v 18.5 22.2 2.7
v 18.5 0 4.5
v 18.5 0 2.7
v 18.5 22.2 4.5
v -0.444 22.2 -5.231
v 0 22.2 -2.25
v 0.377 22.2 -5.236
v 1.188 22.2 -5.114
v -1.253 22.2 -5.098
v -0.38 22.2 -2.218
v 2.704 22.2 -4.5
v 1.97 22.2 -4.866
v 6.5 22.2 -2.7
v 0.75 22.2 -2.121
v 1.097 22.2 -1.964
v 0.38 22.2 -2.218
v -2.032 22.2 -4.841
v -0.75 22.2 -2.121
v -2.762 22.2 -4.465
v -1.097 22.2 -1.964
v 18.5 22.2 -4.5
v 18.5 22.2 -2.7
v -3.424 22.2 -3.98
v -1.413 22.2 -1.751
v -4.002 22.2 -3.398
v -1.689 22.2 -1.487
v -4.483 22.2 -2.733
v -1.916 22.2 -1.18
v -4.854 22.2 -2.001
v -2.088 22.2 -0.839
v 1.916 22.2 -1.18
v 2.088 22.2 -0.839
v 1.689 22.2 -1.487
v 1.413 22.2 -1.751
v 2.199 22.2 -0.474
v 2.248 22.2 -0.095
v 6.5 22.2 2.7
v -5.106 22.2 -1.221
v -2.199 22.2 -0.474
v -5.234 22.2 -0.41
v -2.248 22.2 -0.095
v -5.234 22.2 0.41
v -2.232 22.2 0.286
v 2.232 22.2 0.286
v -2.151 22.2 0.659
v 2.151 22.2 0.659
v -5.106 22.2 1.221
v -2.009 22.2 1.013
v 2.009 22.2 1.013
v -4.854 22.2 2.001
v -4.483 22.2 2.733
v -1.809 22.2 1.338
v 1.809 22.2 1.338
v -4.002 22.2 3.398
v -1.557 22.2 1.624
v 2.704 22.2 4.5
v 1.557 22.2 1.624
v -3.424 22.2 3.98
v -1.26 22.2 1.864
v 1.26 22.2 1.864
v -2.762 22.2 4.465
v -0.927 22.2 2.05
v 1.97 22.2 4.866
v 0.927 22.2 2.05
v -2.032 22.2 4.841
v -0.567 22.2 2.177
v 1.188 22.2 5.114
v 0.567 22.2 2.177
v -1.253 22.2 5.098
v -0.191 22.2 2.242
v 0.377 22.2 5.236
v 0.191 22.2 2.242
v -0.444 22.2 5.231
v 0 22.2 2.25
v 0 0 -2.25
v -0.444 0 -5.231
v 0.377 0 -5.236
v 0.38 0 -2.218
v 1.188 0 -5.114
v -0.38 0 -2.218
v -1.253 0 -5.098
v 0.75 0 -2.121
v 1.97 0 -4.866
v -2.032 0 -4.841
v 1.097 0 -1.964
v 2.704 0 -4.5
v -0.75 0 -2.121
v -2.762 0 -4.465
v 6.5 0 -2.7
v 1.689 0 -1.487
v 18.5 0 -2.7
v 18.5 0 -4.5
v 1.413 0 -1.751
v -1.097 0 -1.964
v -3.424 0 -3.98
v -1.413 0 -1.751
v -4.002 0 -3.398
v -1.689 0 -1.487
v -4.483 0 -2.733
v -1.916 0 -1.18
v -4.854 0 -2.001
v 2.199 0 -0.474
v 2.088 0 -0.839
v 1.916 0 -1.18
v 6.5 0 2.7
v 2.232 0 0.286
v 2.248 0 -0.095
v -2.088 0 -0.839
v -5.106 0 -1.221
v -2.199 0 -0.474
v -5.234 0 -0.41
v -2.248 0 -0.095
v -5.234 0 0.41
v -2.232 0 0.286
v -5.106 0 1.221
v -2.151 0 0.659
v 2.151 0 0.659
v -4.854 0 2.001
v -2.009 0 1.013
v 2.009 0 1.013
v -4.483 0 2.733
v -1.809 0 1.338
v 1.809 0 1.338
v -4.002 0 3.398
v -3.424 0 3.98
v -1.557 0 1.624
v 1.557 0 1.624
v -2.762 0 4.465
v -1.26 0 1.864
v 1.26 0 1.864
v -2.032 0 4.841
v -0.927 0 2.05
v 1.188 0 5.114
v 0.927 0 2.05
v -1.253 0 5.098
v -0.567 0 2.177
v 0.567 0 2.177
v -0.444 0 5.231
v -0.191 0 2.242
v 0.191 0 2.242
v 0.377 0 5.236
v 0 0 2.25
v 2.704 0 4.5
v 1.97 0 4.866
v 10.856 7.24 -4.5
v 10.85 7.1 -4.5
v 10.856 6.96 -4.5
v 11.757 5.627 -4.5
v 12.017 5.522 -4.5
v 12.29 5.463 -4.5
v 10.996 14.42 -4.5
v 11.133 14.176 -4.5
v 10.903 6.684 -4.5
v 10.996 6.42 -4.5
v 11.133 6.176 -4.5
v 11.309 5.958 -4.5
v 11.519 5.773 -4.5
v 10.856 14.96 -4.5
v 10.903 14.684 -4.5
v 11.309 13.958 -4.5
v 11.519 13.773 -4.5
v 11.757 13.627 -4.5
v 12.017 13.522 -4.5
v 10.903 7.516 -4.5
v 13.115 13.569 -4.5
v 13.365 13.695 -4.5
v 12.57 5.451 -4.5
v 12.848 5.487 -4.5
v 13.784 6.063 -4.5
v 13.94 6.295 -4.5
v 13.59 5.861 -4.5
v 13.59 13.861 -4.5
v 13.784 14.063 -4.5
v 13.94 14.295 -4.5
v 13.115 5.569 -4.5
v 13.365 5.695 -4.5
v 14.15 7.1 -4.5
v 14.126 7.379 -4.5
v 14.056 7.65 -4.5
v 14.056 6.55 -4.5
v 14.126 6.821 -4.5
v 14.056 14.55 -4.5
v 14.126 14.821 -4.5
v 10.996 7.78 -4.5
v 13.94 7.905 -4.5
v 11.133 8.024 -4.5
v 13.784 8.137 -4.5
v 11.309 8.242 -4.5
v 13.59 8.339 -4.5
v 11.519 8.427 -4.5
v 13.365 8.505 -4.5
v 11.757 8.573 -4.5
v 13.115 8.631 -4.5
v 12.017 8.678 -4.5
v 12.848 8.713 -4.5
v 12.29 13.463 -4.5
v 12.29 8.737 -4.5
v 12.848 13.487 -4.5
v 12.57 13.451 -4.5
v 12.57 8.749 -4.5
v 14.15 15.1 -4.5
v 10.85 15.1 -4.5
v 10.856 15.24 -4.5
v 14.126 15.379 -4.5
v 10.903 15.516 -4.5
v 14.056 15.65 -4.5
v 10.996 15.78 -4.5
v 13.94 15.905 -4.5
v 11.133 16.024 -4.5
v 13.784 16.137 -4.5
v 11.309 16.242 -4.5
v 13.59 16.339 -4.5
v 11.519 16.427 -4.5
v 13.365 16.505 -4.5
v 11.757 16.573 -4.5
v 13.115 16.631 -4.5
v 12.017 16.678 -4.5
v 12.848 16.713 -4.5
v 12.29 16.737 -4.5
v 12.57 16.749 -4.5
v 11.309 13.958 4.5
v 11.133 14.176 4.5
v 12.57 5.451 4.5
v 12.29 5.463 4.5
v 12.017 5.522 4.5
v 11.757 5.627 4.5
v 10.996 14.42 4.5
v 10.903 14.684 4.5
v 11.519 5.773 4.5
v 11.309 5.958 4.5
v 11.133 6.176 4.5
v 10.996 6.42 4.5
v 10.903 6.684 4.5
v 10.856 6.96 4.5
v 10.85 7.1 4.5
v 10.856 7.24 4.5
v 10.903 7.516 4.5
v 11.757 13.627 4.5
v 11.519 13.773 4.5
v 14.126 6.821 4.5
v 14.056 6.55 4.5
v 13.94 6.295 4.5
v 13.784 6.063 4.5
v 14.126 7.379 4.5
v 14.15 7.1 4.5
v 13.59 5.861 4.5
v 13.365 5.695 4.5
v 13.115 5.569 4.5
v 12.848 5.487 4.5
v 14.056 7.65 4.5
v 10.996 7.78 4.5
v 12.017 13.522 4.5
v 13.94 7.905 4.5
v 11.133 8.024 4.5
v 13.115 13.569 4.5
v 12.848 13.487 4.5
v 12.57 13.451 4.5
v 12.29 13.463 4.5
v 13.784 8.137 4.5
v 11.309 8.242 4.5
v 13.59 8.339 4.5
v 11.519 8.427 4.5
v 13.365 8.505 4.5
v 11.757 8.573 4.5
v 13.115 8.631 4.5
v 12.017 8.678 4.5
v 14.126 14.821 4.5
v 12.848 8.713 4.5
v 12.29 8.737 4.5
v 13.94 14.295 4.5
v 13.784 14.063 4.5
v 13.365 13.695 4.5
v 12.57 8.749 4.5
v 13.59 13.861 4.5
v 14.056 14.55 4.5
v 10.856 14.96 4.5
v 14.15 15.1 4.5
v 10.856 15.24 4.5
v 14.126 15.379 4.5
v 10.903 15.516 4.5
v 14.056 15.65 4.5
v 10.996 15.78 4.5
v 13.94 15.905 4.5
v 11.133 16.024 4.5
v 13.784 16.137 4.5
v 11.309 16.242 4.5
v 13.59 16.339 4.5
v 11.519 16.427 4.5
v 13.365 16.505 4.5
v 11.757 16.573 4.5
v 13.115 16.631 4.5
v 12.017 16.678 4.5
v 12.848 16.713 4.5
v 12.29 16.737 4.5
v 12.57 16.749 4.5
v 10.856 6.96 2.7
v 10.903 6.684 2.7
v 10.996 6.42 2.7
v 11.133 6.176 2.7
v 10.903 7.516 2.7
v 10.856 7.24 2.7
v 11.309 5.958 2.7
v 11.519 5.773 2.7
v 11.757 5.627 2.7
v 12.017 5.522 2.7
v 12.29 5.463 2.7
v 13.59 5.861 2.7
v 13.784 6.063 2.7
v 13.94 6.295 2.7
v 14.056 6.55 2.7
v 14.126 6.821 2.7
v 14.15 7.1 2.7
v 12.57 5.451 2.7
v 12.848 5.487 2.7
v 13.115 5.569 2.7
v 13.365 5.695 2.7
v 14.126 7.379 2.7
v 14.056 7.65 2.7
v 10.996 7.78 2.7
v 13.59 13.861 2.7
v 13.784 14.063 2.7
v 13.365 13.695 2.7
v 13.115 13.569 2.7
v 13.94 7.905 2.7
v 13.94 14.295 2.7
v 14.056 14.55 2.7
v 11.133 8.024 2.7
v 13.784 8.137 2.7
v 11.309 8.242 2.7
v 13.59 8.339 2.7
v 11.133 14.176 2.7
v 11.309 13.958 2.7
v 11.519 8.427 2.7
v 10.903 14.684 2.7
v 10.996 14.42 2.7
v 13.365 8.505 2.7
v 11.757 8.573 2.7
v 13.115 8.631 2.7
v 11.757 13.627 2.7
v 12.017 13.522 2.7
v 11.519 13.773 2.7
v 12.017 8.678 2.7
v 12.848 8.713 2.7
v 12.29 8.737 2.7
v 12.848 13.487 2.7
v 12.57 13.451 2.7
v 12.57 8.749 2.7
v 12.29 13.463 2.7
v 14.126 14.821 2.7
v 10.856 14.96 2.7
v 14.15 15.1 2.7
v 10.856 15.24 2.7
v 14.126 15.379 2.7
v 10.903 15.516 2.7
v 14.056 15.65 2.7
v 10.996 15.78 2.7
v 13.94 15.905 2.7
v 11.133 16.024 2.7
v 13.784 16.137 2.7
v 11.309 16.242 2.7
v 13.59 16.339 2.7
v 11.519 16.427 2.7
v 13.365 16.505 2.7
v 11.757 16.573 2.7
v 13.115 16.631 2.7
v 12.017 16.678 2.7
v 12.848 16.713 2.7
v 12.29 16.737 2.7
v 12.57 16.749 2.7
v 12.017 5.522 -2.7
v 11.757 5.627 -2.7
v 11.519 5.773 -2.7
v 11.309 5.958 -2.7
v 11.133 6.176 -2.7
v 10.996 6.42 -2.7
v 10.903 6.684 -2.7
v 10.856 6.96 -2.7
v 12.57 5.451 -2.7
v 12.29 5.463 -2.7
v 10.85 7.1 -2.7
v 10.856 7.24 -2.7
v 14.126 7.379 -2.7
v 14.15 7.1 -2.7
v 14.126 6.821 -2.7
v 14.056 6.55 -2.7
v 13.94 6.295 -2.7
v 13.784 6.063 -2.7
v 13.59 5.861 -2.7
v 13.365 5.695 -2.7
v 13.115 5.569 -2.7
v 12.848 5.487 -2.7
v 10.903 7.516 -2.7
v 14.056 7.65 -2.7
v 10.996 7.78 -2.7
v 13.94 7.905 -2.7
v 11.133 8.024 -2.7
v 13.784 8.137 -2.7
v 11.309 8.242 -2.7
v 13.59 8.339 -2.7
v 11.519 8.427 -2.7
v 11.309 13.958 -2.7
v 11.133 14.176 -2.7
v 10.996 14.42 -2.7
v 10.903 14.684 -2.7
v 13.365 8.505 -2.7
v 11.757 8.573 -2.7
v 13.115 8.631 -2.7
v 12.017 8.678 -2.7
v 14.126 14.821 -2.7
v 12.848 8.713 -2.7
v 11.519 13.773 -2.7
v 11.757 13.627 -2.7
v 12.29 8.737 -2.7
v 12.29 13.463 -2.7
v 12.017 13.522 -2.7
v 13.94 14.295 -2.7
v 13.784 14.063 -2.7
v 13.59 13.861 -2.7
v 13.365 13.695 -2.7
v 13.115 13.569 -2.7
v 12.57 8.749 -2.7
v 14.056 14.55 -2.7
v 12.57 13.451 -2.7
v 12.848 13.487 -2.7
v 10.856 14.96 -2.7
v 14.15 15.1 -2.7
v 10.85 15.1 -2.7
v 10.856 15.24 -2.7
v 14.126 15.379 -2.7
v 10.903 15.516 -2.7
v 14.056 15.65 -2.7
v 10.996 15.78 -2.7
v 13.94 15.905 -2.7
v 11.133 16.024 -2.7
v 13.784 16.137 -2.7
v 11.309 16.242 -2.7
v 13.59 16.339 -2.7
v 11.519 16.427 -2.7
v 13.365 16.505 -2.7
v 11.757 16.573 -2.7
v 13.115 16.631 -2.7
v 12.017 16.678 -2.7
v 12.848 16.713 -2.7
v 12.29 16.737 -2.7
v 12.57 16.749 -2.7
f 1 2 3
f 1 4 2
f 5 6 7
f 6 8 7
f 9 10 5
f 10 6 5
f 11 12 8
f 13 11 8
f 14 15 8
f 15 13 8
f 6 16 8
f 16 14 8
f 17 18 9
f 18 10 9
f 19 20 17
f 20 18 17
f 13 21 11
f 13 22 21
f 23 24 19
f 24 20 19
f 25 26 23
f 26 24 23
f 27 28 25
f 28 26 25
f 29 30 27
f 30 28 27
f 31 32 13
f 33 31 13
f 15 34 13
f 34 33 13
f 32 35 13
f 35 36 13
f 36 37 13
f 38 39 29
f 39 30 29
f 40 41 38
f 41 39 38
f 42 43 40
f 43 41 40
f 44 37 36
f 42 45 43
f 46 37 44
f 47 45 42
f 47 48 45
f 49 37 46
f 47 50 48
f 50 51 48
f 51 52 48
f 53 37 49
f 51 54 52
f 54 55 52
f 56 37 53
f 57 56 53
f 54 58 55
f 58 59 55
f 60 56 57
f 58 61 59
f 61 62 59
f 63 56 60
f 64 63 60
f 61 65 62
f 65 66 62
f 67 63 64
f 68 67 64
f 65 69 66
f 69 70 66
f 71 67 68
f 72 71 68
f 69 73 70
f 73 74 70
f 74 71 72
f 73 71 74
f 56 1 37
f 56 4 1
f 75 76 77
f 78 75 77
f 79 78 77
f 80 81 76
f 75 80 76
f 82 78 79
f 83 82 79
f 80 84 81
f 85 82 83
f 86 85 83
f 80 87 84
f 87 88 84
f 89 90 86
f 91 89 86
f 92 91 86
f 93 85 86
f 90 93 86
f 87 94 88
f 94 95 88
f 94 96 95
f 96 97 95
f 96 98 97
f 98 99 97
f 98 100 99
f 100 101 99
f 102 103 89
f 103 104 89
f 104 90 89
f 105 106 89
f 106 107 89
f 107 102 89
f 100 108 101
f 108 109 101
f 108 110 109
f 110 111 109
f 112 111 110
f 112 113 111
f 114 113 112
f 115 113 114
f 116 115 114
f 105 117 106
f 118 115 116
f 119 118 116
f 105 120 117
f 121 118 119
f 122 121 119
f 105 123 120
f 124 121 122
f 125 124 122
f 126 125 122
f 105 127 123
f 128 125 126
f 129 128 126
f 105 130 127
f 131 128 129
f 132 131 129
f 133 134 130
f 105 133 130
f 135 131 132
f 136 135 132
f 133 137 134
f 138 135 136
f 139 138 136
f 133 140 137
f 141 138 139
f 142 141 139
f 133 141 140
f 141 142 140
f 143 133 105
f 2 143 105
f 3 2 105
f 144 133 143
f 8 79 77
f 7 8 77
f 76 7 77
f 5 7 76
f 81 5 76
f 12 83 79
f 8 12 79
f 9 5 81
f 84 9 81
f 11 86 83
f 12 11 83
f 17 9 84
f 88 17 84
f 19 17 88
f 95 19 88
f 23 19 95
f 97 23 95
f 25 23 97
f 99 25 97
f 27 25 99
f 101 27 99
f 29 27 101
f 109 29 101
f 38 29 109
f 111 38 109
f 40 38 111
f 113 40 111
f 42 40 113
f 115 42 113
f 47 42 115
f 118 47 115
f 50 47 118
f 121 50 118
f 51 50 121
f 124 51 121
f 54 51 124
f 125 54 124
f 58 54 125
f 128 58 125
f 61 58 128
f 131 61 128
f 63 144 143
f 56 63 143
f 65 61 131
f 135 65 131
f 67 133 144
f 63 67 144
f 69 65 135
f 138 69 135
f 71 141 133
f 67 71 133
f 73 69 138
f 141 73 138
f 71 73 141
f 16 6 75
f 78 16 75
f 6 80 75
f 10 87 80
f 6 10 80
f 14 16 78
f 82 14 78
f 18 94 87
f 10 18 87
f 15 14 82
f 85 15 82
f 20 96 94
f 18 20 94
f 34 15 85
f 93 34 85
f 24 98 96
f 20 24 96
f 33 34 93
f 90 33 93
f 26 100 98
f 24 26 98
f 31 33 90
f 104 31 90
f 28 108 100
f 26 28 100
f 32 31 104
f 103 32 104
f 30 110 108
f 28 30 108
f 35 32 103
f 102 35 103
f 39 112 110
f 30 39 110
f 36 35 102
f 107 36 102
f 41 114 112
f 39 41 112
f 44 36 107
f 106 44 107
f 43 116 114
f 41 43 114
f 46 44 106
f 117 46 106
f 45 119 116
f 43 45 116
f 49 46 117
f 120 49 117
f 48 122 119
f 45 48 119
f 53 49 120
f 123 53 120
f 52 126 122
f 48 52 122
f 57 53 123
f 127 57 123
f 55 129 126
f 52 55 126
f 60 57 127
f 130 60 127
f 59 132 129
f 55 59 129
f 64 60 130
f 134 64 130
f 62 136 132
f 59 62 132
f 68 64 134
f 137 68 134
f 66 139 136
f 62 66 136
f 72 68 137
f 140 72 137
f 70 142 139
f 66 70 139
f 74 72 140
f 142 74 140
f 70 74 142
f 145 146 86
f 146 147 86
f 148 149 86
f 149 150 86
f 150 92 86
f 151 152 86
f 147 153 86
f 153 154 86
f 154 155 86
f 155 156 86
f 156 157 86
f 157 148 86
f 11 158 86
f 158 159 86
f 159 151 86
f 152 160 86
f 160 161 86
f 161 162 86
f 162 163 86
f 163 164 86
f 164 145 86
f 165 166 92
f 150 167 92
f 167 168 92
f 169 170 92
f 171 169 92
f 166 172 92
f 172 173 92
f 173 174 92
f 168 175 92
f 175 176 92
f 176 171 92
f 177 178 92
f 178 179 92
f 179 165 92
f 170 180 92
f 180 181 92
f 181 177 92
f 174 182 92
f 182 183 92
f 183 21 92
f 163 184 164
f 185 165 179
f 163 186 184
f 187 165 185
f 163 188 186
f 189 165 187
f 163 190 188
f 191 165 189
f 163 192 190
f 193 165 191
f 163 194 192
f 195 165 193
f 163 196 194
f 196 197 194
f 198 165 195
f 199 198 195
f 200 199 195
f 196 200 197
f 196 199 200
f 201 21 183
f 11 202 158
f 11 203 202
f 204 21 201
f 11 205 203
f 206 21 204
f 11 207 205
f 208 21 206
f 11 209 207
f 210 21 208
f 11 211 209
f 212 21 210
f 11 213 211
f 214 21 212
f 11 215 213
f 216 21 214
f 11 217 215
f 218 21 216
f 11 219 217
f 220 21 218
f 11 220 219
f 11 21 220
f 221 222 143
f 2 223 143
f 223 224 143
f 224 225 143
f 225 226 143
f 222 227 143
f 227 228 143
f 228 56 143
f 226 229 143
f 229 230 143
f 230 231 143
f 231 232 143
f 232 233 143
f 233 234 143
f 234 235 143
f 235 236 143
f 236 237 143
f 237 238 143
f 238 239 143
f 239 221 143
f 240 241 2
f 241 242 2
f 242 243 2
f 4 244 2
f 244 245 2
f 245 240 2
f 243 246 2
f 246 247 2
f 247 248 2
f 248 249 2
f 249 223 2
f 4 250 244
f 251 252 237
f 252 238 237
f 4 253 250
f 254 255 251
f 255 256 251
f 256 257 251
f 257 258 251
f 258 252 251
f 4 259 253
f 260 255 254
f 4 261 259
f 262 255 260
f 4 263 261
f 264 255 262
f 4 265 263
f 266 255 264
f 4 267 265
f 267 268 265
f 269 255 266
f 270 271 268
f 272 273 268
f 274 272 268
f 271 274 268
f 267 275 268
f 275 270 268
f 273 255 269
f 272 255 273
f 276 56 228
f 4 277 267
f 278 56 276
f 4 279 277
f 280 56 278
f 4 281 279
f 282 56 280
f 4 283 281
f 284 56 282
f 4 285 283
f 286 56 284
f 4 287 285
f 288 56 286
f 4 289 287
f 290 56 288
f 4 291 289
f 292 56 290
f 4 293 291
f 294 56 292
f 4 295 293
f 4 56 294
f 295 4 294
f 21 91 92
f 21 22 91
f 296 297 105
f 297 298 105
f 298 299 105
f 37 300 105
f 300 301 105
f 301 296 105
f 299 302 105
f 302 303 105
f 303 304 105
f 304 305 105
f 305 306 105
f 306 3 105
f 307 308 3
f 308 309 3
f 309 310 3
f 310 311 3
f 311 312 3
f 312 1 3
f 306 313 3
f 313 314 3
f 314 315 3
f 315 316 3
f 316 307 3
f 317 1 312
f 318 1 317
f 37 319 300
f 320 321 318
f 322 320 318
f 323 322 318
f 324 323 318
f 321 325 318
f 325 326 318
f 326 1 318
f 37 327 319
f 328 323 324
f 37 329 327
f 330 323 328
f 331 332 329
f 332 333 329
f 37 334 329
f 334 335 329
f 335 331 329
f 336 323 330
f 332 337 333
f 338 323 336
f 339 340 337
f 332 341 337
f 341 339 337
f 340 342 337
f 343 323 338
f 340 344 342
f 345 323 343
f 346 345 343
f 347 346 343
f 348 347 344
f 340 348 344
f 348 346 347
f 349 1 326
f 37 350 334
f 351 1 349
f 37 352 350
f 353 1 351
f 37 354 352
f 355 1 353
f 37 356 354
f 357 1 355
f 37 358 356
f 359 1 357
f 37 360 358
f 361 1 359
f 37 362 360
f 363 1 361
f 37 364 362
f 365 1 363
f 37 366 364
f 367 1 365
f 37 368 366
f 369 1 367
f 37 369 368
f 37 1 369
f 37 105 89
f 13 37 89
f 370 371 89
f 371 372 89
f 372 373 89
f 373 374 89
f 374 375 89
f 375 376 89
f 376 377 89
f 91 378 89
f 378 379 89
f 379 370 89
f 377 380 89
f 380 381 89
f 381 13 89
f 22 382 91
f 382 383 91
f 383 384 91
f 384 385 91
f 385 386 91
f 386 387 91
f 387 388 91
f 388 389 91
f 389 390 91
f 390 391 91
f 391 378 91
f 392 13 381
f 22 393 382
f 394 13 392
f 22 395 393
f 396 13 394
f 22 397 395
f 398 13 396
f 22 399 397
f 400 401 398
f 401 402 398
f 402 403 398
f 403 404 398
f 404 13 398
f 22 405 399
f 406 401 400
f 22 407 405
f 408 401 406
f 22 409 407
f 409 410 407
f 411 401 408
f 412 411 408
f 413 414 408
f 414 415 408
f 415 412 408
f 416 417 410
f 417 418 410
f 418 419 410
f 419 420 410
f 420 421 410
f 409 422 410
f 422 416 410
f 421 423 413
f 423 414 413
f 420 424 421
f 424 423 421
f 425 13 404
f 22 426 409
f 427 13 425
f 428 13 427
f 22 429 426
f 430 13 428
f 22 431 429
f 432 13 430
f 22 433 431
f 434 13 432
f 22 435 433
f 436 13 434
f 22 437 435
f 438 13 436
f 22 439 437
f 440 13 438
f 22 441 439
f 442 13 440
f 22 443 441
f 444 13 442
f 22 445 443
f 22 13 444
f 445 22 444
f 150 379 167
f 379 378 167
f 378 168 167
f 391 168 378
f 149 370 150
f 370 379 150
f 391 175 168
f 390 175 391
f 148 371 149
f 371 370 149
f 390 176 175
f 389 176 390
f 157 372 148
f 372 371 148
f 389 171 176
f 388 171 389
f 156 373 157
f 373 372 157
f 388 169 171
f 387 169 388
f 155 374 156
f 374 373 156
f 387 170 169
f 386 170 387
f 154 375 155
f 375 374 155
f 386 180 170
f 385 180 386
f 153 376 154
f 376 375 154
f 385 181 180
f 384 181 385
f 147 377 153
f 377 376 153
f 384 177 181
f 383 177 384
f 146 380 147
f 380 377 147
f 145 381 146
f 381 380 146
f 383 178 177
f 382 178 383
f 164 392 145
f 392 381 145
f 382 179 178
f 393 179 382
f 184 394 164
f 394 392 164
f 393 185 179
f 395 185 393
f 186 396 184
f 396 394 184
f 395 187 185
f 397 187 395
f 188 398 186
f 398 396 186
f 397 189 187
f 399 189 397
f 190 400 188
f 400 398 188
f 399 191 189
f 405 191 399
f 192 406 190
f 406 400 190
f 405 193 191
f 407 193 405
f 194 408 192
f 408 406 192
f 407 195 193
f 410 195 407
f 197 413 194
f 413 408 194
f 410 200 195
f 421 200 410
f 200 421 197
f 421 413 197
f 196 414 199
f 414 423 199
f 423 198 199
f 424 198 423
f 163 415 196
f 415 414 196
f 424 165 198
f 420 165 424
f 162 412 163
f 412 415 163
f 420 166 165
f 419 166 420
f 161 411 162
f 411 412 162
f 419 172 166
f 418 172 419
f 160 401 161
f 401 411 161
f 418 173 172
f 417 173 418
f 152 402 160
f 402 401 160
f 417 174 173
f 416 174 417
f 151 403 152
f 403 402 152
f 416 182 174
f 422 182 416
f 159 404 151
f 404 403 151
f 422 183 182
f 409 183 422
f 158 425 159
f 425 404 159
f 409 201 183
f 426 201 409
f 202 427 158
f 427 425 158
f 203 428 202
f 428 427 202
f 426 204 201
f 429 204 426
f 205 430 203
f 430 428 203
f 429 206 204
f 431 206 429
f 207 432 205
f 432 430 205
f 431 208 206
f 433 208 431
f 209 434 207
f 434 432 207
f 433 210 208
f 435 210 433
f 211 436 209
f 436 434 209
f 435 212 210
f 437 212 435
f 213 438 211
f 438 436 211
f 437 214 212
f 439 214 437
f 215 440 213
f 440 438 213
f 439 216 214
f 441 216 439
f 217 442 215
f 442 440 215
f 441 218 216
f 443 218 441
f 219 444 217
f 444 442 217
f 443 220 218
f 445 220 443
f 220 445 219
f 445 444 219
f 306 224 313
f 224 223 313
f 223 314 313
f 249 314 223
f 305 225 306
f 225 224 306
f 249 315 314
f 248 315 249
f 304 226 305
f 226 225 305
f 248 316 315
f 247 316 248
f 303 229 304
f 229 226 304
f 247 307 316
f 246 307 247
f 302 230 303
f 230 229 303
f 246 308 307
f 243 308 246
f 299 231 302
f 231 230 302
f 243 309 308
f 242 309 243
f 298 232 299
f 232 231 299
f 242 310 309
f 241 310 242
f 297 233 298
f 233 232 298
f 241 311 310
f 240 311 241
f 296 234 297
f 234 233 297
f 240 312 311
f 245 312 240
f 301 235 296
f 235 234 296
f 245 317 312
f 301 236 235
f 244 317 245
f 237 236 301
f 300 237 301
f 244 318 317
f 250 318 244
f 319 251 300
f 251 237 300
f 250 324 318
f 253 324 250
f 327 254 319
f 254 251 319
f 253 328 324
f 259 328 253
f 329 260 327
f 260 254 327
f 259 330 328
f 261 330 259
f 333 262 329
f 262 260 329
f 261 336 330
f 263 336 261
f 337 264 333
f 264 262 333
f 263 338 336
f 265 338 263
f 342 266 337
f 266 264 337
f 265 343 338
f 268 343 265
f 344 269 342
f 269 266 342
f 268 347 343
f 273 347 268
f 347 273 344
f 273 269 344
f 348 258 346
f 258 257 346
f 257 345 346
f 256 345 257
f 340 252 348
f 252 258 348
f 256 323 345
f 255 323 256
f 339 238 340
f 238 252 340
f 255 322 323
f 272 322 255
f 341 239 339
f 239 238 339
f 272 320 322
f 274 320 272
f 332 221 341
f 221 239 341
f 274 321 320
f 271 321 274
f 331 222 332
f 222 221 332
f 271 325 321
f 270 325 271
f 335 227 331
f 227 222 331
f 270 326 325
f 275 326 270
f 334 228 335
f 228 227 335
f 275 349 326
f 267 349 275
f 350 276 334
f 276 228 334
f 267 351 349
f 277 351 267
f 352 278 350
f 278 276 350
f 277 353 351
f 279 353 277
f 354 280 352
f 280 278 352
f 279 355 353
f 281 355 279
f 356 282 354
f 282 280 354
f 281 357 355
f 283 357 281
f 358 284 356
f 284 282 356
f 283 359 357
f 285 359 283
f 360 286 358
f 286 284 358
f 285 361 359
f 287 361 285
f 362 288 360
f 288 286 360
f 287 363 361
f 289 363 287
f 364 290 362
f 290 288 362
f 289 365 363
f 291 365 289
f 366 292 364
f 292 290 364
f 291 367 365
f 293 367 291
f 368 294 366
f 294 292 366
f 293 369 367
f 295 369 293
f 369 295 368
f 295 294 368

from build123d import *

# Parameters (mm, degrees)
SKETCH_1_R          = 5.25
SKETCH_1_R_2        = 2.25
EXTRUDE_1_DEPTH     = 22.2
SKETCH_2_W          = 16
SKETCH_2_H          = 9
EXTRUDE_2_DEPTH     = 22.2
SKETCH_3_W          = 12
SKETCH_3_H          = 5.4
CUT_EXTRUDE_1_DEPTH = 30.370946529
SKETCH_4_R          = 1.65
CUT_EXTRUDE_2_DEPTH = 22


with BuildPart() as part:
    # 草图1 → 凸台-拉伸1 (new body)
    with BuildSketch(Plane(origin=(0, 0, 0), x_dir=(1, 0, 0), z_dir=(0, 1, 0))):
        with Locations(Location((0, 0, 0), (0, 0, 270))):
            Circle(SKETCH_1_R)
        with Locations(Location((0, 0, 0), (0, 0, 270))):
            Circle(SKETCH_1_R_2, mode=Mode.SUBTRACT)
    extrude(amount=EXTRUDE_1_DEPTH)

    # 草图2 → 凸台-拉伸2 (add)
    with BuildSketch(Plane(origin=(0, 22.2, 0), x_dir=(1, 0, 0), z_dir=(0, 1, 0))):
        with Locations((10.5, 0)):
            Rectangle(SKETCH_2_W, SKETCH_2_H)
    extrude(amount=-EXTRUDE_2_DEPTH)

    # 草图3 → 切除-拉伸1 (cut, through all)
    with BuildSketch(Plane(origin=(0, 22.2, 0), x_dir=(1, 0, 0), z_dir=(0, 1, 0))):
        with Locations((12.5, 0)):
            Rectangle(SKETCH_3_W, SKETCH_3_H)
    extrude(amount=-CUT_EXTRUDE_1_DEPTH, mode=Mode.SUBTRACT)

    # 草图4 → 切除-拉伸2 (cut)
    with BuildSketch(Plane.XY.offset(4.5)):
        with Locations(Location((12.5, 15.1, 0), (0, 0, 180))):
            Circle(SKETCH_4_R)
        with Locations(Location((12.5, 7.1, 0), (0, 0, 180))):
            Circle(SKETCH_4_R)
    extrude(amount=-CUT_EXTRUDE_2_DEPTH, mode=Mode.SUBTRACT)


solid = part.part
